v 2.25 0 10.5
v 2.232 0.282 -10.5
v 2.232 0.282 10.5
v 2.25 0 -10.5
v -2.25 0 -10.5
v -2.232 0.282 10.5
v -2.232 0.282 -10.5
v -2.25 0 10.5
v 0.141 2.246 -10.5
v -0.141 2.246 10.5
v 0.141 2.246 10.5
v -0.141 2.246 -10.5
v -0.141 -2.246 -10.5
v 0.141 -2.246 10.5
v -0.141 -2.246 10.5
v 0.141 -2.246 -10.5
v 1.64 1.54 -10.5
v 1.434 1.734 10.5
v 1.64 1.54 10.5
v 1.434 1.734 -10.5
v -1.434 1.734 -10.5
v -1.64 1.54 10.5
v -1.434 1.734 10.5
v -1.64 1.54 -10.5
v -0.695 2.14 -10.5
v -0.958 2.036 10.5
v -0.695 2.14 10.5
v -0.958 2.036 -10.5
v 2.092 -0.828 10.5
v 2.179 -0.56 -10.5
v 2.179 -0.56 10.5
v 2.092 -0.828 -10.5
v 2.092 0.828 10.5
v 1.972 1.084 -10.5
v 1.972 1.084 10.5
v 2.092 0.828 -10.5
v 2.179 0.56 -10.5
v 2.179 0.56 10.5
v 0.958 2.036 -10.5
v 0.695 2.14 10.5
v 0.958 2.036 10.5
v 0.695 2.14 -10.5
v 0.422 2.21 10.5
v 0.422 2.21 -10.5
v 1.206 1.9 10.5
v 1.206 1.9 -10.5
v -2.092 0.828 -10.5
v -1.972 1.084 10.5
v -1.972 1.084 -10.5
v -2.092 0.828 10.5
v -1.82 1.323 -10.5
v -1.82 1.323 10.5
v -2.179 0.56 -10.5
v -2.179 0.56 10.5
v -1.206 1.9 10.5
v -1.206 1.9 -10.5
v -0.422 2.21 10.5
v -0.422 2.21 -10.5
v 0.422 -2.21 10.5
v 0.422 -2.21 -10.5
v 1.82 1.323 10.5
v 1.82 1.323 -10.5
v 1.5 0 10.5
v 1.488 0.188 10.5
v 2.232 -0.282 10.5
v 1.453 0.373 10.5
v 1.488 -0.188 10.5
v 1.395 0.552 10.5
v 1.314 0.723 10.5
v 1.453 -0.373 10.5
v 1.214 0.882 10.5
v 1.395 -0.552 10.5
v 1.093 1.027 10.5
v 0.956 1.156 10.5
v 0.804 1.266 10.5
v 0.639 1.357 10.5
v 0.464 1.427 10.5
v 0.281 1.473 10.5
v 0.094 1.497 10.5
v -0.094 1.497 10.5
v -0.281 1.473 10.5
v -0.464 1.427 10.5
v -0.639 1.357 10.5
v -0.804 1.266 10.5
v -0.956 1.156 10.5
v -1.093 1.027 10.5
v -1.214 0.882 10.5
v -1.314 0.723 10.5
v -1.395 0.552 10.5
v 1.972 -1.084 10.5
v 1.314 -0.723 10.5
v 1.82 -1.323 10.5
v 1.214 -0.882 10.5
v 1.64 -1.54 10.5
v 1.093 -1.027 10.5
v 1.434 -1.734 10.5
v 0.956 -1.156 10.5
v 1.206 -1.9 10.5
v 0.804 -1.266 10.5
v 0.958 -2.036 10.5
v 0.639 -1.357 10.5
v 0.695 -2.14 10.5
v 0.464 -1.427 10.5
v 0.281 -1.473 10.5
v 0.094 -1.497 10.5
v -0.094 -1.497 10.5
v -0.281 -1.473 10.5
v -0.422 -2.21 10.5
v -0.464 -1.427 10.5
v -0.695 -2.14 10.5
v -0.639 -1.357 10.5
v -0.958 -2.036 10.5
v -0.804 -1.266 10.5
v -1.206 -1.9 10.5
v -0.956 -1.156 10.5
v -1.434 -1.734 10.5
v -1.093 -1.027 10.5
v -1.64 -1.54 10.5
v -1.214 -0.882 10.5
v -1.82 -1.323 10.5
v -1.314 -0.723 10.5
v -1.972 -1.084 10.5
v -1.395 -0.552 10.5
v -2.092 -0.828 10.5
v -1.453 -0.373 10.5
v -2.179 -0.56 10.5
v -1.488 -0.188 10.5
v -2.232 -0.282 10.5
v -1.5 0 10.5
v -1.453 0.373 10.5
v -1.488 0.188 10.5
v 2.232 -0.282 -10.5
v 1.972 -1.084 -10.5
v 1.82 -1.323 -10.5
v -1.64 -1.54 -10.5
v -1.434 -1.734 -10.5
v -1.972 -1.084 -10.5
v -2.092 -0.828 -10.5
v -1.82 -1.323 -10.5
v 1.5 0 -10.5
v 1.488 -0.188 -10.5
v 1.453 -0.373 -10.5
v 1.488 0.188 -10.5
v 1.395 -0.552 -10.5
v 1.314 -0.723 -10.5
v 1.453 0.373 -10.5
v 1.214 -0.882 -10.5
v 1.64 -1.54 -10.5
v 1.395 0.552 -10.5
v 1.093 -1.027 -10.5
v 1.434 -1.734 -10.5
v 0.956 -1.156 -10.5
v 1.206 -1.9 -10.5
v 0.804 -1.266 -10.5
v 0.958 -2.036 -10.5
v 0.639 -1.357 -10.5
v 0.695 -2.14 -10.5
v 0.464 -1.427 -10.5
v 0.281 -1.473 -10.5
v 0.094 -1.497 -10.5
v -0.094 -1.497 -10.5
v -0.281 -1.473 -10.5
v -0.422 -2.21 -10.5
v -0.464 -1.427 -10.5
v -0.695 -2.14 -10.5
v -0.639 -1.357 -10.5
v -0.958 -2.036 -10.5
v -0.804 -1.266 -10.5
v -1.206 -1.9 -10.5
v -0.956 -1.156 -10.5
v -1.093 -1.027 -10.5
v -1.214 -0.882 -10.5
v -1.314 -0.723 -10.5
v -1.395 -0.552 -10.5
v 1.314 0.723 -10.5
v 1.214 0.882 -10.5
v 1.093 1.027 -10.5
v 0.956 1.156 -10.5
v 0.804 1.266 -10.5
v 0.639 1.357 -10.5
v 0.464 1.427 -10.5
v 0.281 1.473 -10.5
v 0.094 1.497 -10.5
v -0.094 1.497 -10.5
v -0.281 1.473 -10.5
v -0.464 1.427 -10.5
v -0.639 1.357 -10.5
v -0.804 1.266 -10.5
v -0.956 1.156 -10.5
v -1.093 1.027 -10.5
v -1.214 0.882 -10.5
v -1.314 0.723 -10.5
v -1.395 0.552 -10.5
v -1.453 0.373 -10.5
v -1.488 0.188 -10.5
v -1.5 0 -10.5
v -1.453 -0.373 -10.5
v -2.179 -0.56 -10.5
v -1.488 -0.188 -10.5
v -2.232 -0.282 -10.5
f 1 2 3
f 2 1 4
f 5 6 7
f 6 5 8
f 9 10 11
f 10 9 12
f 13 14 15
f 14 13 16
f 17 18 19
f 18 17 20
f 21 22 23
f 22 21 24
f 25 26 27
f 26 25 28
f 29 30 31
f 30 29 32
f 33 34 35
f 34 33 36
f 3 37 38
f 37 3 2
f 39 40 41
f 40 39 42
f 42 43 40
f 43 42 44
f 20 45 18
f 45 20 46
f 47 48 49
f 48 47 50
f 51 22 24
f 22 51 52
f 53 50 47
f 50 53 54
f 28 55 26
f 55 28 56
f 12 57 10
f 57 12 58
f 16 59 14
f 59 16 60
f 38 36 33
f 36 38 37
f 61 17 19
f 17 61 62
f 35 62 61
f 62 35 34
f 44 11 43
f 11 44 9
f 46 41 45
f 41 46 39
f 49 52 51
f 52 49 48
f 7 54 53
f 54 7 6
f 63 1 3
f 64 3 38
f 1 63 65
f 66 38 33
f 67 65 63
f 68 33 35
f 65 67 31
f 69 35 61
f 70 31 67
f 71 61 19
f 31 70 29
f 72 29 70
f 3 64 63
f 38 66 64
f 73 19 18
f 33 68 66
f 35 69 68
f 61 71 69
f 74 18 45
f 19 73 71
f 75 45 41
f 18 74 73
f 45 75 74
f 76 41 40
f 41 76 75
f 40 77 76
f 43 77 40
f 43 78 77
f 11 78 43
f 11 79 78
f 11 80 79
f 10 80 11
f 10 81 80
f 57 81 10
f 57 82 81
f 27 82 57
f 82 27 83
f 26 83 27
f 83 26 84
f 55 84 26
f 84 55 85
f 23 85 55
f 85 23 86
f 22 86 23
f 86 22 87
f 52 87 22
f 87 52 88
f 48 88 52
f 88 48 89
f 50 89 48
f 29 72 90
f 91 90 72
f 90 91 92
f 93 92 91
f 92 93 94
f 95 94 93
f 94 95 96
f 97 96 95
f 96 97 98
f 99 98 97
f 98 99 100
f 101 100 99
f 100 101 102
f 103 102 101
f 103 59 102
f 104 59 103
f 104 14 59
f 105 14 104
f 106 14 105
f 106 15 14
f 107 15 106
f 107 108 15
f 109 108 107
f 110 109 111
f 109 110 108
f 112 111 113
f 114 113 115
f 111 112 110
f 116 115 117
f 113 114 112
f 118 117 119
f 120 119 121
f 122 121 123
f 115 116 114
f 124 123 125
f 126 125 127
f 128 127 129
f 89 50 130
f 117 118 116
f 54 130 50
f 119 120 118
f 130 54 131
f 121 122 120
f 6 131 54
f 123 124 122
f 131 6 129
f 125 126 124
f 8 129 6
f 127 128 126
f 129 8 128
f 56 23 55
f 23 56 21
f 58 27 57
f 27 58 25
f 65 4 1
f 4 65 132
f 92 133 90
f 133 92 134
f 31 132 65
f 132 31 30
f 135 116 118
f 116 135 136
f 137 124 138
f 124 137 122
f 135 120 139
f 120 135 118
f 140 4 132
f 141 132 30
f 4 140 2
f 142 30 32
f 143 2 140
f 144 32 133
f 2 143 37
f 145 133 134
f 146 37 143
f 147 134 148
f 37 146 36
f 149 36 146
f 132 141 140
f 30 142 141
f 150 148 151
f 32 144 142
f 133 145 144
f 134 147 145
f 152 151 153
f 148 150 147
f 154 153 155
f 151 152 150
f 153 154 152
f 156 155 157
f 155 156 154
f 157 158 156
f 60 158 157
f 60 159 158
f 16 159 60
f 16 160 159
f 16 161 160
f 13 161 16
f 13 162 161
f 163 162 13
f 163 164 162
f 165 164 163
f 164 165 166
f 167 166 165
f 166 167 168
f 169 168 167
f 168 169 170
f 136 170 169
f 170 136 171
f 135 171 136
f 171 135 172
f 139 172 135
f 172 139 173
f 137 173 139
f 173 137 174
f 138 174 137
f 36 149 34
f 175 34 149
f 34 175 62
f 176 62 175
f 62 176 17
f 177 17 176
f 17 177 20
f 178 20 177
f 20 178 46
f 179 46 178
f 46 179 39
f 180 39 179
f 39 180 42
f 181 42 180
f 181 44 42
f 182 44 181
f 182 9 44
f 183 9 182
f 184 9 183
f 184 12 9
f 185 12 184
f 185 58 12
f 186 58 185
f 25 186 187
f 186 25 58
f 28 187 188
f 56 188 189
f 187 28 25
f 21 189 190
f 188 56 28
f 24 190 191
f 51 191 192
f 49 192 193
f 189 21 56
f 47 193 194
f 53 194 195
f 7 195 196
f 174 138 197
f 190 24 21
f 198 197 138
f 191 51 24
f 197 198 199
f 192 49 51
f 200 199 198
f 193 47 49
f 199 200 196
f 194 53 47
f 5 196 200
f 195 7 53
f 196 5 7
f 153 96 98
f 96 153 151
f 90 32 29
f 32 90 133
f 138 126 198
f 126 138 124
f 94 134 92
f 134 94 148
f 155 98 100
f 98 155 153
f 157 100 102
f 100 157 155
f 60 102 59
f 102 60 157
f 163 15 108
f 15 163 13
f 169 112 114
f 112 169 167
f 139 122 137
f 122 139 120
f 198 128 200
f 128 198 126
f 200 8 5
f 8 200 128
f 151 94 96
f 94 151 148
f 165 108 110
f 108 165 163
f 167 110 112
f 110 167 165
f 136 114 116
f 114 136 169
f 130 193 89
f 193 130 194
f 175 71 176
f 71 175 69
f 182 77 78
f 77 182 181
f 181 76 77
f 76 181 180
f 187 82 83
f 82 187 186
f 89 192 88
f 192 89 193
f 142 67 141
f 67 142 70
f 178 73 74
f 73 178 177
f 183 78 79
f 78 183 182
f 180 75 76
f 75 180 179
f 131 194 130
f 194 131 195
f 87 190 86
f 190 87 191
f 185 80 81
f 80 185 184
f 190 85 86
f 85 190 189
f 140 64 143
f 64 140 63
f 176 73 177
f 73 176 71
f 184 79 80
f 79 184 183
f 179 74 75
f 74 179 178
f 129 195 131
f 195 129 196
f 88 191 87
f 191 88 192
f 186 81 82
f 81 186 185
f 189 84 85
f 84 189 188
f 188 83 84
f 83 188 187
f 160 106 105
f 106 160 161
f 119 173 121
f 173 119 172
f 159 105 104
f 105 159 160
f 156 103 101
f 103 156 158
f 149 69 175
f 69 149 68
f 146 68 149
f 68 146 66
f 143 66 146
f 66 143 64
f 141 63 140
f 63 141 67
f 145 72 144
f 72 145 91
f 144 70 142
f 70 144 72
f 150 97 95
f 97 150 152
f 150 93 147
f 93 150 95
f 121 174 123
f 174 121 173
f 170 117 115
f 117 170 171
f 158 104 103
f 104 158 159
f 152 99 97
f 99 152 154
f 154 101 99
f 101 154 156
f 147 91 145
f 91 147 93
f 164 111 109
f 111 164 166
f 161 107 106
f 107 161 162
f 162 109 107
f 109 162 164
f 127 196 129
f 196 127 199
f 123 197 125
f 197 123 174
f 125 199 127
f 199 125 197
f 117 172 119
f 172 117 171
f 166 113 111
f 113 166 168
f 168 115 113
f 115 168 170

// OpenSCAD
$fn = 50;


difference() {
	union() {
		translate(v = [0, 0, -10.5000000000]) {
			cylinder(h = 21, r = 2.2500000000);
		}
	}
	union() {
		translate(v = [0, 0, -100.0000000000]) {
			cylinder(h = 200, r = 1.5000000000);
		}
	}
}
